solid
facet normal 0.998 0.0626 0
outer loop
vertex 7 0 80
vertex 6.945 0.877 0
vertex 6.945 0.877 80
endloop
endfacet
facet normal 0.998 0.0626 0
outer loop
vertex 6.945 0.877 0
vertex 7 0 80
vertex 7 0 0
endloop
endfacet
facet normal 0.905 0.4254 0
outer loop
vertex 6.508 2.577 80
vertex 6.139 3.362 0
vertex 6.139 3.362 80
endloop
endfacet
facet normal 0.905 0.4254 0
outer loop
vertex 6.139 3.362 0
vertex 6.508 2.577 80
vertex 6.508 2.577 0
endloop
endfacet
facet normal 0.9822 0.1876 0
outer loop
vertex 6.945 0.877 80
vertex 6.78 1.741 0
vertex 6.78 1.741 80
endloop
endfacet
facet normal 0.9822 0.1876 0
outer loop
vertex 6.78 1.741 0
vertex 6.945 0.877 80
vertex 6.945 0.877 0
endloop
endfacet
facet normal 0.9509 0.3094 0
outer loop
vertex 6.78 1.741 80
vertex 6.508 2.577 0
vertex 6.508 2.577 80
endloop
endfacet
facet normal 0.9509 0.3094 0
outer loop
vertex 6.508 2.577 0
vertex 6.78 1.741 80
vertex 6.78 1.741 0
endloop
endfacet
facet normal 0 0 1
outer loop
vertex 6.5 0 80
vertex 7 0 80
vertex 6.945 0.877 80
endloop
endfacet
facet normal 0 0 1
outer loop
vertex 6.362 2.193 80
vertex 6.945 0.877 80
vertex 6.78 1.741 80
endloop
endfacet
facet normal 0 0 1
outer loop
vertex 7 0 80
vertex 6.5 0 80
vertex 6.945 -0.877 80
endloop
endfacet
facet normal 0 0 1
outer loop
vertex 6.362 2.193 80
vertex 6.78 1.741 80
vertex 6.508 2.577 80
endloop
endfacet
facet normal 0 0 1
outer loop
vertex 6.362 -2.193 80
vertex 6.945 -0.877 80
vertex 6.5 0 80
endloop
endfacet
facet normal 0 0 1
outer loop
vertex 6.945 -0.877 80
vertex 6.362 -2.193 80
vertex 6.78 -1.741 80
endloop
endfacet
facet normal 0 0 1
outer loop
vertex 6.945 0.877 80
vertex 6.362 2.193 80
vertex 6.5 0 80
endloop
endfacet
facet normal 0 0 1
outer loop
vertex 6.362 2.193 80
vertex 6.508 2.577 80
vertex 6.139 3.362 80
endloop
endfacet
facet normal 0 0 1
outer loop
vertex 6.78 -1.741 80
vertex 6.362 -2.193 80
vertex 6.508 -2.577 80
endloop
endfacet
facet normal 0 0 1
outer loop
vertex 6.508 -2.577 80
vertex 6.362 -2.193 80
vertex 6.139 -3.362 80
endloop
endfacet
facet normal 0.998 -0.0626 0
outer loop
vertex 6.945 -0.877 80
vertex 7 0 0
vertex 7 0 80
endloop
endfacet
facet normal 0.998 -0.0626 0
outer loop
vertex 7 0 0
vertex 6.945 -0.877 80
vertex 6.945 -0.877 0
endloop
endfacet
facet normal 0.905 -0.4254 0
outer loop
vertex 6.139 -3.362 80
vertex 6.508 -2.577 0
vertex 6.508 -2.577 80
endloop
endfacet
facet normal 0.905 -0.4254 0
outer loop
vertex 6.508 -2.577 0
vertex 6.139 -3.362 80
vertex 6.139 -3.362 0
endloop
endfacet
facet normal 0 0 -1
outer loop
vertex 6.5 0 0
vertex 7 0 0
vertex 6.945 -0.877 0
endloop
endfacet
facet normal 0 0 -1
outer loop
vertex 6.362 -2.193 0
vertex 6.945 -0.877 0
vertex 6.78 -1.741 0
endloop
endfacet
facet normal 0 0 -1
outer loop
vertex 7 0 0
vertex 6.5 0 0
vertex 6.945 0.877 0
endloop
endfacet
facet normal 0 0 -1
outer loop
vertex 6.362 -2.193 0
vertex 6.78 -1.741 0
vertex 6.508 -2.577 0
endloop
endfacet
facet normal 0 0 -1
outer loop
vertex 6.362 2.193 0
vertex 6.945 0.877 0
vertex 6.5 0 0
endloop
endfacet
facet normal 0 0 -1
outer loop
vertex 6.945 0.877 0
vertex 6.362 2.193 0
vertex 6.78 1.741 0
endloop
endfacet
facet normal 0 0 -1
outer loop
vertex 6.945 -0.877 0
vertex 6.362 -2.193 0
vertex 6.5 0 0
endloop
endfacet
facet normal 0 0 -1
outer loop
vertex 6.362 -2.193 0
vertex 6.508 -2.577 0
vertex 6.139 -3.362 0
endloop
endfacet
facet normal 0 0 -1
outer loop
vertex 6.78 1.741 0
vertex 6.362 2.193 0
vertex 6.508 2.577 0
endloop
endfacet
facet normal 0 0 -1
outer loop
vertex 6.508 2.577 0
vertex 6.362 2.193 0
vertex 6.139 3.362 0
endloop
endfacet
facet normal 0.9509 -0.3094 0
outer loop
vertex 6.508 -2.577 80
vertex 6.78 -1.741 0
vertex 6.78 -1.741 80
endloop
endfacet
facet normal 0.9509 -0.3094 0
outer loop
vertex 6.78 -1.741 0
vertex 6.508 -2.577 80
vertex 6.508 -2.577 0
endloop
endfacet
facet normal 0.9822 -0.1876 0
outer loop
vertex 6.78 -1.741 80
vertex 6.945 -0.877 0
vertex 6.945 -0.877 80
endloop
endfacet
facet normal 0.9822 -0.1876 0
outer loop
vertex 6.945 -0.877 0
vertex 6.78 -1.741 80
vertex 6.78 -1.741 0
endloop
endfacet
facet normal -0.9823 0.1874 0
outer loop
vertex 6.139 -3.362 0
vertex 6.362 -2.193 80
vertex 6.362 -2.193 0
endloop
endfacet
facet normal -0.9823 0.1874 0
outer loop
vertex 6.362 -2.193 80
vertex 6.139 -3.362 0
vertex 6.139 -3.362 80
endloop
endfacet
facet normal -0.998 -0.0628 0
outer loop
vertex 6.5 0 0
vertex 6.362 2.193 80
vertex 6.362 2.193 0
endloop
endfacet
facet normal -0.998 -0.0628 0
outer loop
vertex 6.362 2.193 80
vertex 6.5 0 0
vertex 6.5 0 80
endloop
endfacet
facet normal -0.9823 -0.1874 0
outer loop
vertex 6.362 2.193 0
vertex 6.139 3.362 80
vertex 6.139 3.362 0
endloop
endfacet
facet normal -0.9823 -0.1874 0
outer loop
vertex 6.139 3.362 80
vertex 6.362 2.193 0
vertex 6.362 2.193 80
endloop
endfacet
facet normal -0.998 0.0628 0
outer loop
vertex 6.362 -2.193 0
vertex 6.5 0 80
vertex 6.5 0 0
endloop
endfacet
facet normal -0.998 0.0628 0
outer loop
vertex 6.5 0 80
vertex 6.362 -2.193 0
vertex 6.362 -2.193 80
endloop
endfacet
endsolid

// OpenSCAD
$fn = 50;


difference() {
	union() {
		cylinder(h = 80, r = 7.0000000000);
		translate(v = [-14.0000000000, 0, 0]) {
			cylinder(h = 80, r = 7.0000000000);
		}
	}
	union() {
		cylinder(h = 80, r = 3.2500000000);
		cylinder(h = 80, r = 1.8000000000);
		cylinder(h = 80, r = 1.8000000000);
		cylinder(h = 80, r = 1.8000000000);
		translate(v = [-18.5000000000, 0, 0]) {
			hull() {
				translate(v = [-3.7500000000, 0.0000000000, 0]) {
					cylinder(h = 80, r = 7.5000000000);
				}
				translate(v = [3.7500000000, 0.0000000000, 0]) {
					cylinder(h = 80, r = 7.5000000000);
				}
				translate(v = [-3.7500000000, -0.0000000000, 0]) {
					cylinder(h = 80, r = 7.5000000000);
				}
				translate(v = [3.7500000000, -0.0000000000, 0]) {
					cylinder(h = 80, r = 7.5000000000);
				}
			}
		}
		translate(v = [-11.0000000000, 0, 0.0000000000]) {
			cylinder(h = 80, r = 17.5000000000);
		}
	}
}
